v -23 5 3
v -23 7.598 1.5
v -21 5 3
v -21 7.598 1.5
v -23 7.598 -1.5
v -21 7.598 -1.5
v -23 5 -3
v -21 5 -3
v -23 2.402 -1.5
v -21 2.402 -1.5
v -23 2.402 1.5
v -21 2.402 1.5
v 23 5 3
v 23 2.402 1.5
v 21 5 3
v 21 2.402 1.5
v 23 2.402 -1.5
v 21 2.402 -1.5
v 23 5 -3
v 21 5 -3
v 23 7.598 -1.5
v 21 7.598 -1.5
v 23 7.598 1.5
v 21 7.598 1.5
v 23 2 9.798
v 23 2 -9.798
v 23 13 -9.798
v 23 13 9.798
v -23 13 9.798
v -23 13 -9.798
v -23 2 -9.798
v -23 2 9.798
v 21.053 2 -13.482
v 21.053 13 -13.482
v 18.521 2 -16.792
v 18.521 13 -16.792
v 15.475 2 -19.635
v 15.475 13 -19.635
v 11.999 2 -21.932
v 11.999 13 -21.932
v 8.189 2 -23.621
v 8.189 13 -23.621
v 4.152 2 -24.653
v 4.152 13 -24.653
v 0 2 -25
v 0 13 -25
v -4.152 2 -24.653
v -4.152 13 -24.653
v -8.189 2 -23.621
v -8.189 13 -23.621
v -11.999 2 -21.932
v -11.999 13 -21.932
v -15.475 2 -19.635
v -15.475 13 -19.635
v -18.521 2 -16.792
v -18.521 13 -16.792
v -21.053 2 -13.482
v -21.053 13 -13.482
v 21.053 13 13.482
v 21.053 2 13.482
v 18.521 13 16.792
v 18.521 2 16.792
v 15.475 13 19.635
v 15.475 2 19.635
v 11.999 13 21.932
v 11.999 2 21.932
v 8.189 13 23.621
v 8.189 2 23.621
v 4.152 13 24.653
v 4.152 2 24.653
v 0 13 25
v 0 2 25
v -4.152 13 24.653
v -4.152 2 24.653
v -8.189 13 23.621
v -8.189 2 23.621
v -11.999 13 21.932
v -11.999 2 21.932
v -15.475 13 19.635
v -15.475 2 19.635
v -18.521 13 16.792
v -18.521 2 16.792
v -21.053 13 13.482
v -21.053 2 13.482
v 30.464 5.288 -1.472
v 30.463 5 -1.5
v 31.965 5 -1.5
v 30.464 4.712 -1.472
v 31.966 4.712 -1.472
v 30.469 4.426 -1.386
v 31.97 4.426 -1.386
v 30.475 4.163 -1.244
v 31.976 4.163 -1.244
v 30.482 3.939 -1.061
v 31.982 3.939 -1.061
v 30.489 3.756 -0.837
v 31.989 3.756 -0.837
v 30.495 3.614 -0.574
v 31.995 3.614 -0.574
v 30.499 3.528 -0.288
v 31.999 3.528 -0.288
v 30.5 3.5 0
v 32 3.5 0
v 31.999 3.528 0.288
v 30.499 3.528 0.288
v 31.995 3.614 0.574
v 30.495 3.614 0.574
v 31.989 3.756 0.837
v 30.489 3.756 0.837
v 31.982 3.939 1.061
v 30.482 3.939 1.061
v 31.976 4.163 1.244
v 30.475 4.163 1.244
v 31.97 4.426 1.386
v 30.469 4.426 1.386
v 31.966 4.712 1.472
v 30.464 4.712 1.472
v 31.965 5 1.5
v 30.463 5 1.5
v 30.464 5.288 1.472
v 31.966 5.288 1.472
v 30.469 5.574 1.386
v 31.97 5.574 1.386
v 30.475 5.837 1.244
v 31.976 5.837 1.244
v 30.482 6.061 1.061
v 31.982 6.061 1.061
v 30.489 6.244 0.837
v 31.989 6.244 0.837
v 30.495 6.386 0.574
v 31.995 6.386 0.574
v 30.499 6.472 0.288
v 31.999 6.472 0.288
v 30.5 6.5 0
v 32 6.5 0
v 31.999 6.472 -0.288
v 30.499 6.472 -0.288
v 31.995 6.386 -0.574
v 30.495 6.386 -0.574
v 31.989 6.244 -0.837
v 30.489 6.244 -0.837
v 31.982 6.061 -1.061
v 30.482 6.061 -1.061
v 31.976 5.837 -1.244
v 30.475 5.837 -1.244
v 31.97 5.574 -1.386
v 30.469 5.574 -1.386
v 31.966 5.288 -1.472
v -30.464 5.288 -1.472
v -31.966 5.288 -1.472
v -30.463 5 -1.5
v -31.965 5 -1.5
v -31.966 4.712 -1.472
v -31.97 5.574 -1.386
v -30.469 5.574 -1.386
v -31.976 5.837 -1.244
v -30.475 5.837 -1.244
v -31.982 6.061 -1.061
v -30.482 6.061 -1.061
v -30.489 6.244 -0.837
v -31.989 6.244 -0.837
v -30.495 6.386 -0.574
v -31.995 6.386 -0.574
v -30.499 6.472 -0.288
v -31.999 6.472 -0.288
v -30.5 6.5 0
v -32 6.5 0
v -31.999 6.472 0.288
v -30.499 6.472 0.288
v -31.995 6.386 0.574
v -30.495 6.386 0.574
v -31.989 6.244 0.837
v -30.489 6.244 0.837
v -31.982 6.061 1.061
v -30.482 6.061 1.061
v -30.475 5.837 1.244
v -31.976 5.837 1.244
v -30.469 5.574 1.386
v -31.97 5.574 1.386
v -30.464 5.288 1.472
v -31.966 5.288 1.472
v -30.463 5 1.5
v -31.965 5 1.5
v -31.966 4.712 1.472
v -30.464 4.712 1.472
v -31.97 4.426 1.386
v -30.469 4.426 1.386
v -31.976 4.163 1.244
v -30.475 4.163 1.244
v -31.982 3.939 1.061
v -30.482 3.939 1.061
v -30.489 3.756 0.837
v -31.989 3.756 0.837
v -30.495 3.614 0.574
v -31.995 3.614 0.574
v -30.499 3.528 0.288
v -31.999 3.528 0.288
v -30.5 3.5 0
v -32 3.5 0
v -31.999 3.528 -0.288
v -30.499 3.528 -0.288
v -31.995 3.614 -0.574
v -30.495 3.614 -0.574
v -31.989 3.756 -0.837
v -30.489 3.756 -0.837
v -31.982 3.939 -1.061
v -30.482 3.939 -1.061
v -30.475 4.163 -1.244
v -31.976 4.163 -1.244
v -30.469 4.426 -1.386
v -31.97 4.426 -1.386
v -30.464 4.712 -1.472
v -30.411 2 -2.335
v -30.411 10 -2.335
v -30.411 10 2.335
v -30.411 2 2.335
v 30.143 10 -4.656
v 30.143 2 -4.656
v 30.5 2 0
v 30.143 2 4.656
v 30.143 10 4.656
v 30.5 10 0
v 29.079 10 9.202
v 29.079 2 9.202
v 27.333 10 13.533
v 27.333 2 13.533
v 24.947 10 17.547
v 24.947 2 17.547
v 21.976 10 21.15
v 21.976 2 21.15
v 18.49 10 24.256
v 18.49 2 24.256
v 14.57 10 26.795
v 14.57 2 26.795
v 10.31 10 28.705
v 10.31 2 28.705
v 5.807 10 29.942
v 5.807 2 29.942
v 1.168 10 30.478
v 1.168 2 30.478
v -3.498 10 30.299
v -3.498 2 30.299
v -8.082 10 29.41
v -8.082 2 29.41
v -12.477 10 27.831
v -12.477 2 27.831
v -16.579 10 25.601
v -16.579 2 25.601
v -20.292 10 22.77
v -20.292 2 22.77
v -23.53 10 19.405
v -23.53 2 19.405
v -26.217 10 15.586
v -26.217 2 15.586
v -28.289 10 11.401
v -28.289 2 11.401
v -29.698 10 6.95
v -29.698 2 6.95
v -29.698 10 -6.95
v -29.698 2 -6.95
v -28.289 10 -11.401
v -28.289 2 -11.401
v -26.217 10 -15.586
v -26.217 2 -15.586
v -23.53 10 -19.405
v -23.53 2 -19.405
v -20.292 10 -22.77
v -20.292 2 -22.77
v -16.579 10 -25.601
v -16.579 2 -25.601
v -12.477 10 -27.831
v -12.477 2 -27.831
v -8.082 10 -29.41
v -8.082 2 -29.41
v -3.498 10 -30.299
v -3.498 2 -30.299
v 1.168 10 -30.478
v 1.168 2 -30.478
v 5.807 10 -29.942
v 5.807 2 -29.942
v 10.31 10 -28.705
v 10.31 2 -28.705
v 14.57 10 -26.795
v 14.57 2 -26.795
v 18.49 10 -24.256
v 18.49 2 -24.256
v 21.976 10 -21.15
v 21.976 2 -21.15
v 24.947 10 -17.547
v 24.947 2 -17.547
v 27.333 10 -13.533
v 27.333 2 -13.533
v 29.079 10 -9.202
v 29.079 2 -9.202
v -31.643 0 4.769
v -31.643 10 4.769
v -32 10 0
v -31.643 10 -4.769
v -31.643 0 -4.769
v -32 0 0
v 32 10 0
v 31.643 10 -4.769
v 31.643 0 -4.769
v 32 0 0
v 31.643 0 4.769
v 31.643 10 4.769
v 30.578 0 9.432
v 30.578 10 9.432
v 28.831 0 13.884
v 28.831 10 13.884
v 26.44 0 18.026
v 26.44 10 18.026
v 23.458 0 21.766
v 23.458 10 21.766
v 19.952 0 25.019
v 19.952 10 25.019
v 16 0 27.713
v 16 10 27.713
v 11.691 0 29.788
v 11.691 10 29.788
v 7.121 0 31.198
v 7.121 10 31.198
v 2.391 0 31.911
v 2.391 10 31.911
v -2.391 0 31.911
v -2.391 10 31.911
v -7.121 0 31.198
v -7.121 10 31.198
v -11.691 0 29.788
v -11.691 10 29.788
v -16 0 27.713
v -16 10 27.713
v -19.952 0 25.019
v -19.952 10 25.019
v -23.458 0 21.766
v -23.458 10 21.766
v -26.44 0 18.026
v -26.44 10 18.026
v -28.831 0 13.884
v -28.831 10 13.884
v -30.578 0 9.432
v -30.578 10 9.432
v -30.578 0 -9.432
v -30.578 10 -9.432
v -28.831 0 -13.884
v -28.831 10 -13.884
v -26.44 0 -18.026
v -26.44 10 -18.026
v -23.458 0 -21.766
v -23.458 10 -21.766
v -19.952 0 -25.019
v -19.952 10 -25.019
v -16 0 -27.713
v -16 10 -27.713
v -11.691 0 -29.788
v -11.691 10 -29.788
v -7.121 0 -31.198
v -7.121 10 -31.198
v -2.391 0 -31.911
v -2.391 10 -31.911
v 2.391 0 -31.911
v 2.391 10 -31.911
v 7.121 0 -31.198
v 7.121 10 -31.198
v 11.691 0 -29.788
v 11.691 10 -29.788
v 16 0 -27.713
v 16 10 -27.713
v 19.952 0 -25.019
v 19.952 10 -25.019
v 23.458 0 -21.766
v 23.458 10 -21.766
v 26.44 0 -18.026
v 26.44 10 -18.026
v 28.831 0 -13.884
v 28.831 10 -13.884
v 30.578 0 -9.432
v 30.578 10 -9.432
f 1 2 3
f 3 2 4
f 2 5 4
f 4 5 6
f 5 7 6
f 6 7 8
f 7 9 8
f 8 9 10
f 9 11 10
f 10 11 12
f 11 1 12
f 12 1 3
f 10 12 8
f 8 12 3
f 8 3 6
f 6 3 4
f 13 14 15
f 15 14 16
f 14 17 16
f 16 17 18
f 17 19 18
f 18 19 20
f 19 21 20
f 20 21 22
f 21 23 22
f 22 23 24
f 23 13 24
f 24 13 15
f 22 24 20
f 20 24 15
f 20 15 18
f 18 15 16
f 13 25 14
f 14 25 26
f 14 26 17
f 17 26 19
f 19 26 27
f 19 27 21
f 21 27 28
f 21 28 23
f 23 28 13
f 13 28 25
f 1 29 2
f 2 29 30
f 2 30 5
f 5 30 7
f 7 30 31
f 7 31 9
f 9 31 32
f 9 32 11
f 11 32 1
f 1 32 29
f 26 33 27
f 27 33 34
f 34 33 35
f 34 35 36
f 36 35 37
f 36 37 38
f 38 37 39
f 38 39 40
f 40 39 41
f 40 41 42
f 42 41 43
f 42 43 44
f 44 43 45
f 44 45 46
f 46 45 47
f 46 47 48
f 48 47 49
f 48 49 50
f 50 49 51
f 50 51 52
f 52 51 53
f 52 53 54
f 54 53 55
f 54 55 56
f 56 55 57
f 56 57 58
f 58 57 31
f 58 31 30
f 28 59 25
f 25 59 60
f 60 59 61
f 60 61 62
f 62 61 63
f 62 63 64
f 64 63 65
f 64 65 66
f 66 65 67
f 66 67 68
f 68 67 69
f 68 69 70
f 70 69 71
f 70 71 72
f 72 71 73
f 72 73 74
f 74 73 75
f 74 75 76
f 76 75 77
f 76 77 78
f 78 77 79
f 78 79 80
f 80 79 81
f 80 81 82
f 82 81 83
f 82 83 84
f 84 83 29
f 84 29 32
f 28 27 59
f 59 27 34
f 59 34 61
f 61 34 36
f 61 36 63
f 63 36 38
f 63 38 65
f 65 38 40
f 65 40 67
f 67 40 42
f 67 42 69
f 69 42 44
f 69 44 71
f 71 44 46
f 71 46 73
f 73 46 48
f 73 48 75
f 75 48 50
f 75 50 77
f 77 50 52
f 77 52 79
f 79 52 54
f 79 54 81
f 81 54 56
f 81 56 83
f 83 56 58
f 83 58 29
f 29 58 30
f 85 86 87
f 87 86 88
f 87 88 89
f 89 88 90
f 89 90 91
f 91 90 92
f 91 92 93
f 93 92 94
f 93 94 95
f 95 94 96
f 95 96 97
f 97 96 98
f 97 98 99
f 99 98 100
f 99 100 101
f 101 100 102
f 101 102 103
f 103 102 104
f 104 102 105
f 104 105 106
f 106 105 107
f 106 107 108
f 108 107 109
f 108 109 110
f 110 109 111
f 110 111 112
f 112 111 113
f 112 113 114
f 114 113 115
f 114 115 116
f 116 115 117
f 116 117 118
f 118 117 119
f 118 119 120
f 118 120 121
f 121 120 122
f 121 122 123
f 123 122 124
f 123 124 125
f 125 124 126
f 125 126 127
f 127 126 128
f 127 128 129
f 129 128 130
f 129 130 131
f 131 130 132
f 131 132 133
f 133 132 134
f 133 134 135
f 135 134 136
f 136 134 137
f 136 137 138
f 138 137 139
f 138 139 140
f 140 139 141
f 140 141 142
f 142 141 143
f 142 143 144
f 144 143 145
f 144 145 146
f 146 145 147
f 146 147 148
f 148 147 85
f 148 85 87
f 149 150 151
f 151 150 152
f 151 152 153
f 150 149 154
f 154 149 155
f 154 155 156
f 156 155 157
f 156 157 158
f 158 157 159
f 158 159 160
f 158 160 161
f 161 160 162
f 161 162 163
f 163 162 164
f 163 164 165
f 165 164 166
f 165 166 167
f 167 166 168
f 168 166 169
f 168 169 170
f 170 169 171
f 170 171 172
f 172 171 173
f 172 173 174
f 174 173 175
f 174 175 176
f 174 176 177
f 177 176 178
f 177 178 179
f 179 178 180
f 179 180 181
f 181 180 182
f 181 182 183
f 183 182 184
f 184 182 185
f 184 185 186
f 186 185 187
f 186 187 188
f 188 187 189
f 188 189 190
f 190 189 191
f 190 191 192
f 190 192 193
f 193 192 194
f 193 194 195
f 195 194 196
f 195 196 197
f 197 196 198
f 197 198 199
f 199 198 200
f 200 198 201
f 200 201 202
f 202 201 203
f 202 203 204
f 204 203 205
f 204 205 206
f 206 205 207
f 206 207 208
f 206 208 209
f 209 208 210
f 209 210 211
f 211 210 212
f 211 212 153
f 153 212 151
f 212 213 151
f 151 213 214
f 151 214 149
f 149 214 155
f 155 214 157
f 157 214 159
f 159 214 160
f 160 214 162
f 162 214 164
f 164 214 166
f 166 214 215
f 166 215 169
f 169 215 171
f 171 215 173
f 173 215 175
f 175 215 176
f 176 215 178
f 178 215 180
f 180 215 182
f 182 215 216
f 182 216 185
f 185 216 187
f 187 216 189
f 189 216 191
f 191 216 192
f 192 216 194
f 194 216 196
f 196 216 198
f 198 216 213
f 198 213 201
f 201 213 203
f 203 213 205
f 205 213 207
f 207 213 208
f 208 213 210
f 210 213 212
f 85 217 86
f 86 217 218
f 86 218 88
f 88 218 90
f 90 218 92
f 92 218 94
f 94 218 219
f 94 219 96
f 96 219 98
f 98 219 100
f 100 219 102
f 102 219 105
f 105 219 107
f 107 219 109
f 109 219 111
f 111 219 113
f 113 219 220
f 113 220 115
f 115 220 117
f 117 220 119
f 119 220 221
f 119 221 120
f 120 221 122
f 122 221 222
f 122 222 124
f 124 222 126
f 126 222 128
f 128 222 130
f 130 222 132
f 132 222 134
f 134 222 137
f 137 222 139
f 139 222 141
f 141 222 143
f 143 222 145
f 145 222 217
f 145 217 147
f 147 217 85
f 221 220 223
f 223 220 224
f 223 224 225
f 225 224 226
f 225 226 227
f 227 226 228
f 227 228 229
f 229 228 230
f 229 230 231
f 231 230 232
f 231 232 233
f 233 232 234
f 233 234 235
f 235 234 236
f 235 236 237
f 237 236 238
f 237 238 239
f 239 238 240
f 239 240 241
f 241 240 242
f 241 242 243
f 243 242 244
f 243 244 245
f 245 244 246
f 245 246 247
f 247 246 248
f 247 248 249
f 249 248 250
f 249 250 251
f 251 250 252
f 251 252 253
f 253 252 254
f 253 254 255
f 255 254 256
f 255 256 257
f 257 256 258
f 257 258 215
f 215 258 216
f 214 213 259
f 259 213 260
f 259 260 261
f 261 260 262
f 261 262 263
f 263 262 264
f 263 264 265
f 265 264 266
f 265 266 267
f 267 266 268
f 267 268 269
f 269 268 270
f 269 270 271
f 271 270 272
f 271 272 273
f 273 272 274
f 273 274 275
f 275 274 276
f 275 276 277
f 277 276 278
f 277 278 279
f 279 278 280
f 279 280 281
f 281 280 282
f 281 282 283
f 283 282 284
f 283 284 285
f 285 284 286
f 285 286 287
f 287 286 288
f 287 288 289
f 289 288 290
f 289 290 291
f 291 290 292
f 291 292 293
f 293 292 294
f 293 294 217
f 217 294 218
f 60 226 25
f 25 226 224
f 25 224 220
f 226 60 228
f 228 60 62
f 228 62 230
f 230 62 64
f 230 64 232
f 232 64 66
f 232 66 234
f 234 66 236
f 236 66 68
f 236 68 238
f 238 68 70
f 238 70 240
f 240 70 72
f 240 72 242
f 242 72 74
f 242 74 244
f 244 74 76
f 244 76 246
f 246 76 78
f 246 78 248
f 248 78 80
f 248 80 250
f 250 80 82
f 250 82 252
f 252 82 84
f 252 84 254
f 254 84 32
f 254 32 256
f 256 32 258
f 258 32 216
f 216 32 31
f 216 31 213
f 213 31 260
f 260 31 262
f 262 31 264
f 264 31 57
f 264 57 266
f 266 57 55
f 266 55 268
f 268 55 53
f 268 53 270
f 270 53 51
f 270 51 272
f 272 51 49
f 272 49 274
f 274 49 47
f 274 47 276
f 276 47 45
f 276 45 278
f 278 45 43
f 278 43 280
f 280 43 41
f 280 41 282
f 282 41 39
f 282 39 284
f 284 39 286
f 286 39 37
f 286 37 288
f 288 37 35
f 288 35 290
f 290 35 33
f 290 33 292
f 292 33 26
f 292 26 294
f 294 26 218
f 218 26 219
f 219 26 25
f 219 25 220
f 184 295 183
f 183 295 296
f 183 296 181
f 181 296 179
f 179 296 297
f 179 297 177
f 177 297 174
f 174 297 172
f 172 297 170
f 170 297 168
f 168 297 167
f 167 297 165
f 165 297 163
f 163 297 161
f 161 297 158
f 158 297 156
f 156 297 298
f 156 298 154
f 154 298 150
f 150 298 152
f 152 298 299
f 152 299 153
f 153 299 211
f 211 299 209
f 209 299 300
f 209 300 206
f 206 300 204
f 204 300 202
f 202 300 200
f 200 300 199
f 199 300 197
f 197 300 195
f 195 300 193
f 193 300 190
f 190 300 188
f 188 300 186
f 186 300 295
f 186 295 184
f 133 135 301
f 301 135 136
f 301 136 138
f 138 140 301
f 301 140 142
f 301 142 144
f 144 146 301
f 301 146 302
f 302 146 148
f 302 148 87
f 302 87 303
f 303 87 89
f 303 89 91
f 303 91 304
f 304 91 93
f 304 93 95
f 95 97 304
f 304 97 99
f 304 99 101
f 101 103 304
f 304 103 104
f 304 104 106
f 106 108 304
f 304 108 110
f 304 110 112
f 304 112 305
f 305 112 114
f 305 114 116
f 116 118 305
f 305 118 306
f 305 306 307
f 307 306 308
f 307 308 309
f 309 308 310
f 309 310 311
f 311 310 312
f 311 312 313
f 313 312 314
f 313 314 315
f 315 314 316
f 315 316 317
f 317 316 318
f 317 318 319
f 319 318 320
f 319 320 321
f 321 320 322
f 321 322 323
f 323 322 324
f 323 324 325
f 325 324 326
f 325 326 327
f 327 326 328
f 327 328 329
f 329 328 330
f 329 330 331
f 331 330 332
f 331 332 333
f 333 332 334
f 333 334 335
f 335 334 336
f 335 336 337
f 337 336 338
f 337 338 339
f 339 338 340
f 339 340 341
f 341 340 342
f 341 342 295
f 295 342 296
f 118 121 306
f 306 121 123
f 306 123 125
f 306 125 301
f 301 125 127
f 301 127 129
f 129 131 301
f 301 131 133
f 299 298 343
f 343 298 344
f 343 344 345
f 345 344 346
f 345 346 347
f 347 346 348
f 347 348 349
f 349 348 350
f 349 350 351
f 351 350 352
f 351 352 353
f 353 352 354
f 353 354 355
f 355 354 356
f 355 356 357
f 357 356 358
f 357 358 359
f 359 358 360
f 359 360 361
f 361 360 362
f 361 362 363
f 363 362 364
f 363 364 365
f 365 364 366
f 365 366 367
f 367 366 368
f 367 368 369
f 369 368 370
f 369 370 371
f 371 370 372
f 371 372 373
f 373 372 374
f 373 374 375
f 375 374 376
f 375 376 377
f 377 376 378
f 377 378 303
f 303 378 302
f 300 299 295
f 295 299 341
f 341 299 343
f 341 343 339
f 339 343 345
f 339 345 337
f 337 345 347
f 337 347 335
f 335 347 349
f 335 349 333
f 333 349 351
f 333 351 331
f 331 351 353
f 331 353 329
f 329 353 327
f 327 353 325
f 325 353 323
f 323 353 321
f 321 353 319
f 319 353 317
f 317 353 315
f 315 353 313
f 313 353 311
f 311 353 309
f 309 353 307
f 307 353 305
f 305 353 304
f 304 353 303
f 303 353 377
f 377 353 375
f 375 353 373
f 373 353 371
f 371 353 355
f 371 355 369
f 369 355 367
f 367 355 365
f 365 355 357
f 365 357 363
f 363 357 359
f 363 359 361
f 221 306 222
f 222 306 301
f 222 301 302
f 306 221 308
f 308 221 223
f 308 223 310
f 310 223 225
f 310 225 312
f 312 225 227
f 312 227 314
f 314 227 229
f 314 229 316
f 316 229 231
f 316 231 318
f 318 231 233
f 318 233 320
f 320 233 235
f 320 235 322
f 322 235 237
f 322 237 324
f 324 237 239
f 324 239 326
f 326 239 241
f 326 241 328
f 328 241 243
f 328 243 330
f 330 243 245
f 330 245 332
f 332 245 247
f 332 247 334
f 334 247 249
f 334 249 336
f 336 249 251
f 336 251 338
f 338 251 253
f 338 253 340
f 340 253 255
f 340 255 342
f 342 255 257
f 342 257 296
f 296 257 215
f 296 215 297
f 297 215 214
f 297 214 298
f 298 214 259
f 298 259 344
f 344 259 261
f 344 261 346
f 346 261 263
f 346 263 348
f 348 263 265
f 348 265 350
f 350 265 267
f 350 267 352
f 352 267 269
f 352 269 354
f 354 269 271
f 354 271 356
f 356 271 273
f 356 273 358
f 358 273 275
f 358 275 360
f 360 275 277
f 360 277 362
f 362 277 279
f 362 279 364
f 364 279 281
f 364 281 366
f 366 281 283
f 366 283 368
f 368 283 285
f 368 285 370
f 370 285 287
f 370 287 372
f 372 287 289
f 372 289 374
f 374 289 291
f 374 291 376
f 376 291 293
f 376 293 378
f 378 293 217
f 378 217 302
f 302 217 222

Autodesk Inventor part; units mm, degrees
ref_plane "XZ Plane" through (0, 0, 0) normal (0, 1, 0) x (-1, 0, 0)
ref_plane "XY Plane" through (0, 0, 0) normal (0, 0, 1) x (1, 0, 0)
sketch "Sketch1" plane through (0, 0, 0) normal (0, 1, 0) x (-1, 0, 0)
  circle A0 centre (0, 0) radius 32
  dimension "d0" = 64
extrude "Extrusion1" add sketch "Sketch1" along normal blind 10
sketch "Sketch2" plane through (0, 10, 0) normal (0, 1, 0) x (1, 0, 0)
  circle A0 centre (0, 0) radius 30.5
  dimension "d3" = 61
extrude "Extrusion2" cut sketch "Sketch2" against normal blind 8
ref_plane "Work Plane1" through (32, 0, 0) normal (1, 0, 0) x (0, 1, 0)
sketch "Sketch5" plane through (32, 0, 0) normal (1, 0, 0) x (0, 1, 0)
  circle A0 centre (5, 0) radius 1.5
  line L0 (10, -32) -> (10, 32) projected
  point P0 (0, 0)
  dimension "d7" = 3
  dimension "d8" = 5
extrude "Extrusion3" cut sketch "Sketch5" against normal through all
sketch "Esquisse6" plane through (0, 2, 0) normal (0, 1, 0) x (1, 0, 0)
  circle A0 centre (0, 0) radius 25
  dimension "d11" = 50
extrude "Extrusion4" add sketch "Esquisse6" along normal blind 11
sketch "Esquisse7" plane through (0, 13, 0) normal (0, 1, 0) x (1, 0, 0)
  circle A0 centre (0, 0) radius 25 projected
  line L0 (23, -9.798) -> (23, 9.798)
  line L1 (-23, -9.798) -> (-23, 9.798)
  dimension "d16" = 2
  dimension "d17" = 2
extrude "Extrusion5" cut sketch "Esquisse7" against normal blind 11 contours A0 L0 | L1 A0
sketch "Esquisse8" plane through (23, 13, 9.798) normal (1, 0, 0) x (0, 0, -1)
  line L0 (6.798, -8) -> (8.298, -5.4019)
  line L1 (8.298, -5.4019) -> (11.298, -5.4019)
  line L2 (11.298, -5.4019) -> (12.798, -8)
  line L3 (12.798, -8) -> (11.298, -10.5981)
  line L4 (11.298, -10.5981) -> (8.298, -10.5981)
  line L5 (8.298, -10.5981) -> (6.798, -8)
  line L6 (0, -11) -> (19.5959, -11) projected
  point P0 (9.798, -13)
  point P1 (11.298, -8)
  point P2 (9.798, -8)
  dimension "d18" = 6
extrude "Extrusion6" cut sketch "Esquisse8" against normal blind 2
sketch "Esquisse9" plane through (-23, 13, -9.798) normal (-1, 0, 0) x (0, 0, 1)
  line L0 (12.798, -8) -> (11.298, -10.5981)
  line L1 (11.298, -10.5981) -> (8.298, -10.5981)
  line L2 (8.298, -10.5981) -> (6.798, -8)
  line L3 (6.798, -8) -> (8.298, -5.4019)
  line L4 (8.298, -5.4019) -> (11.298, -5.4019)
  line L5 (11.298, -5.4019) -> (12.798, -8)
  line L6 (0, -11) -> (19.5959, -11) projected
  point P0 (9.798, -13)
  point P1 (8.298, -8)
  point P2 (9.798, -8)
  dimension "d21" = 6
extrude "Extrusion7" cut sketch "Esquisse9" against normal blind 2
properties part number "bouchon2"
